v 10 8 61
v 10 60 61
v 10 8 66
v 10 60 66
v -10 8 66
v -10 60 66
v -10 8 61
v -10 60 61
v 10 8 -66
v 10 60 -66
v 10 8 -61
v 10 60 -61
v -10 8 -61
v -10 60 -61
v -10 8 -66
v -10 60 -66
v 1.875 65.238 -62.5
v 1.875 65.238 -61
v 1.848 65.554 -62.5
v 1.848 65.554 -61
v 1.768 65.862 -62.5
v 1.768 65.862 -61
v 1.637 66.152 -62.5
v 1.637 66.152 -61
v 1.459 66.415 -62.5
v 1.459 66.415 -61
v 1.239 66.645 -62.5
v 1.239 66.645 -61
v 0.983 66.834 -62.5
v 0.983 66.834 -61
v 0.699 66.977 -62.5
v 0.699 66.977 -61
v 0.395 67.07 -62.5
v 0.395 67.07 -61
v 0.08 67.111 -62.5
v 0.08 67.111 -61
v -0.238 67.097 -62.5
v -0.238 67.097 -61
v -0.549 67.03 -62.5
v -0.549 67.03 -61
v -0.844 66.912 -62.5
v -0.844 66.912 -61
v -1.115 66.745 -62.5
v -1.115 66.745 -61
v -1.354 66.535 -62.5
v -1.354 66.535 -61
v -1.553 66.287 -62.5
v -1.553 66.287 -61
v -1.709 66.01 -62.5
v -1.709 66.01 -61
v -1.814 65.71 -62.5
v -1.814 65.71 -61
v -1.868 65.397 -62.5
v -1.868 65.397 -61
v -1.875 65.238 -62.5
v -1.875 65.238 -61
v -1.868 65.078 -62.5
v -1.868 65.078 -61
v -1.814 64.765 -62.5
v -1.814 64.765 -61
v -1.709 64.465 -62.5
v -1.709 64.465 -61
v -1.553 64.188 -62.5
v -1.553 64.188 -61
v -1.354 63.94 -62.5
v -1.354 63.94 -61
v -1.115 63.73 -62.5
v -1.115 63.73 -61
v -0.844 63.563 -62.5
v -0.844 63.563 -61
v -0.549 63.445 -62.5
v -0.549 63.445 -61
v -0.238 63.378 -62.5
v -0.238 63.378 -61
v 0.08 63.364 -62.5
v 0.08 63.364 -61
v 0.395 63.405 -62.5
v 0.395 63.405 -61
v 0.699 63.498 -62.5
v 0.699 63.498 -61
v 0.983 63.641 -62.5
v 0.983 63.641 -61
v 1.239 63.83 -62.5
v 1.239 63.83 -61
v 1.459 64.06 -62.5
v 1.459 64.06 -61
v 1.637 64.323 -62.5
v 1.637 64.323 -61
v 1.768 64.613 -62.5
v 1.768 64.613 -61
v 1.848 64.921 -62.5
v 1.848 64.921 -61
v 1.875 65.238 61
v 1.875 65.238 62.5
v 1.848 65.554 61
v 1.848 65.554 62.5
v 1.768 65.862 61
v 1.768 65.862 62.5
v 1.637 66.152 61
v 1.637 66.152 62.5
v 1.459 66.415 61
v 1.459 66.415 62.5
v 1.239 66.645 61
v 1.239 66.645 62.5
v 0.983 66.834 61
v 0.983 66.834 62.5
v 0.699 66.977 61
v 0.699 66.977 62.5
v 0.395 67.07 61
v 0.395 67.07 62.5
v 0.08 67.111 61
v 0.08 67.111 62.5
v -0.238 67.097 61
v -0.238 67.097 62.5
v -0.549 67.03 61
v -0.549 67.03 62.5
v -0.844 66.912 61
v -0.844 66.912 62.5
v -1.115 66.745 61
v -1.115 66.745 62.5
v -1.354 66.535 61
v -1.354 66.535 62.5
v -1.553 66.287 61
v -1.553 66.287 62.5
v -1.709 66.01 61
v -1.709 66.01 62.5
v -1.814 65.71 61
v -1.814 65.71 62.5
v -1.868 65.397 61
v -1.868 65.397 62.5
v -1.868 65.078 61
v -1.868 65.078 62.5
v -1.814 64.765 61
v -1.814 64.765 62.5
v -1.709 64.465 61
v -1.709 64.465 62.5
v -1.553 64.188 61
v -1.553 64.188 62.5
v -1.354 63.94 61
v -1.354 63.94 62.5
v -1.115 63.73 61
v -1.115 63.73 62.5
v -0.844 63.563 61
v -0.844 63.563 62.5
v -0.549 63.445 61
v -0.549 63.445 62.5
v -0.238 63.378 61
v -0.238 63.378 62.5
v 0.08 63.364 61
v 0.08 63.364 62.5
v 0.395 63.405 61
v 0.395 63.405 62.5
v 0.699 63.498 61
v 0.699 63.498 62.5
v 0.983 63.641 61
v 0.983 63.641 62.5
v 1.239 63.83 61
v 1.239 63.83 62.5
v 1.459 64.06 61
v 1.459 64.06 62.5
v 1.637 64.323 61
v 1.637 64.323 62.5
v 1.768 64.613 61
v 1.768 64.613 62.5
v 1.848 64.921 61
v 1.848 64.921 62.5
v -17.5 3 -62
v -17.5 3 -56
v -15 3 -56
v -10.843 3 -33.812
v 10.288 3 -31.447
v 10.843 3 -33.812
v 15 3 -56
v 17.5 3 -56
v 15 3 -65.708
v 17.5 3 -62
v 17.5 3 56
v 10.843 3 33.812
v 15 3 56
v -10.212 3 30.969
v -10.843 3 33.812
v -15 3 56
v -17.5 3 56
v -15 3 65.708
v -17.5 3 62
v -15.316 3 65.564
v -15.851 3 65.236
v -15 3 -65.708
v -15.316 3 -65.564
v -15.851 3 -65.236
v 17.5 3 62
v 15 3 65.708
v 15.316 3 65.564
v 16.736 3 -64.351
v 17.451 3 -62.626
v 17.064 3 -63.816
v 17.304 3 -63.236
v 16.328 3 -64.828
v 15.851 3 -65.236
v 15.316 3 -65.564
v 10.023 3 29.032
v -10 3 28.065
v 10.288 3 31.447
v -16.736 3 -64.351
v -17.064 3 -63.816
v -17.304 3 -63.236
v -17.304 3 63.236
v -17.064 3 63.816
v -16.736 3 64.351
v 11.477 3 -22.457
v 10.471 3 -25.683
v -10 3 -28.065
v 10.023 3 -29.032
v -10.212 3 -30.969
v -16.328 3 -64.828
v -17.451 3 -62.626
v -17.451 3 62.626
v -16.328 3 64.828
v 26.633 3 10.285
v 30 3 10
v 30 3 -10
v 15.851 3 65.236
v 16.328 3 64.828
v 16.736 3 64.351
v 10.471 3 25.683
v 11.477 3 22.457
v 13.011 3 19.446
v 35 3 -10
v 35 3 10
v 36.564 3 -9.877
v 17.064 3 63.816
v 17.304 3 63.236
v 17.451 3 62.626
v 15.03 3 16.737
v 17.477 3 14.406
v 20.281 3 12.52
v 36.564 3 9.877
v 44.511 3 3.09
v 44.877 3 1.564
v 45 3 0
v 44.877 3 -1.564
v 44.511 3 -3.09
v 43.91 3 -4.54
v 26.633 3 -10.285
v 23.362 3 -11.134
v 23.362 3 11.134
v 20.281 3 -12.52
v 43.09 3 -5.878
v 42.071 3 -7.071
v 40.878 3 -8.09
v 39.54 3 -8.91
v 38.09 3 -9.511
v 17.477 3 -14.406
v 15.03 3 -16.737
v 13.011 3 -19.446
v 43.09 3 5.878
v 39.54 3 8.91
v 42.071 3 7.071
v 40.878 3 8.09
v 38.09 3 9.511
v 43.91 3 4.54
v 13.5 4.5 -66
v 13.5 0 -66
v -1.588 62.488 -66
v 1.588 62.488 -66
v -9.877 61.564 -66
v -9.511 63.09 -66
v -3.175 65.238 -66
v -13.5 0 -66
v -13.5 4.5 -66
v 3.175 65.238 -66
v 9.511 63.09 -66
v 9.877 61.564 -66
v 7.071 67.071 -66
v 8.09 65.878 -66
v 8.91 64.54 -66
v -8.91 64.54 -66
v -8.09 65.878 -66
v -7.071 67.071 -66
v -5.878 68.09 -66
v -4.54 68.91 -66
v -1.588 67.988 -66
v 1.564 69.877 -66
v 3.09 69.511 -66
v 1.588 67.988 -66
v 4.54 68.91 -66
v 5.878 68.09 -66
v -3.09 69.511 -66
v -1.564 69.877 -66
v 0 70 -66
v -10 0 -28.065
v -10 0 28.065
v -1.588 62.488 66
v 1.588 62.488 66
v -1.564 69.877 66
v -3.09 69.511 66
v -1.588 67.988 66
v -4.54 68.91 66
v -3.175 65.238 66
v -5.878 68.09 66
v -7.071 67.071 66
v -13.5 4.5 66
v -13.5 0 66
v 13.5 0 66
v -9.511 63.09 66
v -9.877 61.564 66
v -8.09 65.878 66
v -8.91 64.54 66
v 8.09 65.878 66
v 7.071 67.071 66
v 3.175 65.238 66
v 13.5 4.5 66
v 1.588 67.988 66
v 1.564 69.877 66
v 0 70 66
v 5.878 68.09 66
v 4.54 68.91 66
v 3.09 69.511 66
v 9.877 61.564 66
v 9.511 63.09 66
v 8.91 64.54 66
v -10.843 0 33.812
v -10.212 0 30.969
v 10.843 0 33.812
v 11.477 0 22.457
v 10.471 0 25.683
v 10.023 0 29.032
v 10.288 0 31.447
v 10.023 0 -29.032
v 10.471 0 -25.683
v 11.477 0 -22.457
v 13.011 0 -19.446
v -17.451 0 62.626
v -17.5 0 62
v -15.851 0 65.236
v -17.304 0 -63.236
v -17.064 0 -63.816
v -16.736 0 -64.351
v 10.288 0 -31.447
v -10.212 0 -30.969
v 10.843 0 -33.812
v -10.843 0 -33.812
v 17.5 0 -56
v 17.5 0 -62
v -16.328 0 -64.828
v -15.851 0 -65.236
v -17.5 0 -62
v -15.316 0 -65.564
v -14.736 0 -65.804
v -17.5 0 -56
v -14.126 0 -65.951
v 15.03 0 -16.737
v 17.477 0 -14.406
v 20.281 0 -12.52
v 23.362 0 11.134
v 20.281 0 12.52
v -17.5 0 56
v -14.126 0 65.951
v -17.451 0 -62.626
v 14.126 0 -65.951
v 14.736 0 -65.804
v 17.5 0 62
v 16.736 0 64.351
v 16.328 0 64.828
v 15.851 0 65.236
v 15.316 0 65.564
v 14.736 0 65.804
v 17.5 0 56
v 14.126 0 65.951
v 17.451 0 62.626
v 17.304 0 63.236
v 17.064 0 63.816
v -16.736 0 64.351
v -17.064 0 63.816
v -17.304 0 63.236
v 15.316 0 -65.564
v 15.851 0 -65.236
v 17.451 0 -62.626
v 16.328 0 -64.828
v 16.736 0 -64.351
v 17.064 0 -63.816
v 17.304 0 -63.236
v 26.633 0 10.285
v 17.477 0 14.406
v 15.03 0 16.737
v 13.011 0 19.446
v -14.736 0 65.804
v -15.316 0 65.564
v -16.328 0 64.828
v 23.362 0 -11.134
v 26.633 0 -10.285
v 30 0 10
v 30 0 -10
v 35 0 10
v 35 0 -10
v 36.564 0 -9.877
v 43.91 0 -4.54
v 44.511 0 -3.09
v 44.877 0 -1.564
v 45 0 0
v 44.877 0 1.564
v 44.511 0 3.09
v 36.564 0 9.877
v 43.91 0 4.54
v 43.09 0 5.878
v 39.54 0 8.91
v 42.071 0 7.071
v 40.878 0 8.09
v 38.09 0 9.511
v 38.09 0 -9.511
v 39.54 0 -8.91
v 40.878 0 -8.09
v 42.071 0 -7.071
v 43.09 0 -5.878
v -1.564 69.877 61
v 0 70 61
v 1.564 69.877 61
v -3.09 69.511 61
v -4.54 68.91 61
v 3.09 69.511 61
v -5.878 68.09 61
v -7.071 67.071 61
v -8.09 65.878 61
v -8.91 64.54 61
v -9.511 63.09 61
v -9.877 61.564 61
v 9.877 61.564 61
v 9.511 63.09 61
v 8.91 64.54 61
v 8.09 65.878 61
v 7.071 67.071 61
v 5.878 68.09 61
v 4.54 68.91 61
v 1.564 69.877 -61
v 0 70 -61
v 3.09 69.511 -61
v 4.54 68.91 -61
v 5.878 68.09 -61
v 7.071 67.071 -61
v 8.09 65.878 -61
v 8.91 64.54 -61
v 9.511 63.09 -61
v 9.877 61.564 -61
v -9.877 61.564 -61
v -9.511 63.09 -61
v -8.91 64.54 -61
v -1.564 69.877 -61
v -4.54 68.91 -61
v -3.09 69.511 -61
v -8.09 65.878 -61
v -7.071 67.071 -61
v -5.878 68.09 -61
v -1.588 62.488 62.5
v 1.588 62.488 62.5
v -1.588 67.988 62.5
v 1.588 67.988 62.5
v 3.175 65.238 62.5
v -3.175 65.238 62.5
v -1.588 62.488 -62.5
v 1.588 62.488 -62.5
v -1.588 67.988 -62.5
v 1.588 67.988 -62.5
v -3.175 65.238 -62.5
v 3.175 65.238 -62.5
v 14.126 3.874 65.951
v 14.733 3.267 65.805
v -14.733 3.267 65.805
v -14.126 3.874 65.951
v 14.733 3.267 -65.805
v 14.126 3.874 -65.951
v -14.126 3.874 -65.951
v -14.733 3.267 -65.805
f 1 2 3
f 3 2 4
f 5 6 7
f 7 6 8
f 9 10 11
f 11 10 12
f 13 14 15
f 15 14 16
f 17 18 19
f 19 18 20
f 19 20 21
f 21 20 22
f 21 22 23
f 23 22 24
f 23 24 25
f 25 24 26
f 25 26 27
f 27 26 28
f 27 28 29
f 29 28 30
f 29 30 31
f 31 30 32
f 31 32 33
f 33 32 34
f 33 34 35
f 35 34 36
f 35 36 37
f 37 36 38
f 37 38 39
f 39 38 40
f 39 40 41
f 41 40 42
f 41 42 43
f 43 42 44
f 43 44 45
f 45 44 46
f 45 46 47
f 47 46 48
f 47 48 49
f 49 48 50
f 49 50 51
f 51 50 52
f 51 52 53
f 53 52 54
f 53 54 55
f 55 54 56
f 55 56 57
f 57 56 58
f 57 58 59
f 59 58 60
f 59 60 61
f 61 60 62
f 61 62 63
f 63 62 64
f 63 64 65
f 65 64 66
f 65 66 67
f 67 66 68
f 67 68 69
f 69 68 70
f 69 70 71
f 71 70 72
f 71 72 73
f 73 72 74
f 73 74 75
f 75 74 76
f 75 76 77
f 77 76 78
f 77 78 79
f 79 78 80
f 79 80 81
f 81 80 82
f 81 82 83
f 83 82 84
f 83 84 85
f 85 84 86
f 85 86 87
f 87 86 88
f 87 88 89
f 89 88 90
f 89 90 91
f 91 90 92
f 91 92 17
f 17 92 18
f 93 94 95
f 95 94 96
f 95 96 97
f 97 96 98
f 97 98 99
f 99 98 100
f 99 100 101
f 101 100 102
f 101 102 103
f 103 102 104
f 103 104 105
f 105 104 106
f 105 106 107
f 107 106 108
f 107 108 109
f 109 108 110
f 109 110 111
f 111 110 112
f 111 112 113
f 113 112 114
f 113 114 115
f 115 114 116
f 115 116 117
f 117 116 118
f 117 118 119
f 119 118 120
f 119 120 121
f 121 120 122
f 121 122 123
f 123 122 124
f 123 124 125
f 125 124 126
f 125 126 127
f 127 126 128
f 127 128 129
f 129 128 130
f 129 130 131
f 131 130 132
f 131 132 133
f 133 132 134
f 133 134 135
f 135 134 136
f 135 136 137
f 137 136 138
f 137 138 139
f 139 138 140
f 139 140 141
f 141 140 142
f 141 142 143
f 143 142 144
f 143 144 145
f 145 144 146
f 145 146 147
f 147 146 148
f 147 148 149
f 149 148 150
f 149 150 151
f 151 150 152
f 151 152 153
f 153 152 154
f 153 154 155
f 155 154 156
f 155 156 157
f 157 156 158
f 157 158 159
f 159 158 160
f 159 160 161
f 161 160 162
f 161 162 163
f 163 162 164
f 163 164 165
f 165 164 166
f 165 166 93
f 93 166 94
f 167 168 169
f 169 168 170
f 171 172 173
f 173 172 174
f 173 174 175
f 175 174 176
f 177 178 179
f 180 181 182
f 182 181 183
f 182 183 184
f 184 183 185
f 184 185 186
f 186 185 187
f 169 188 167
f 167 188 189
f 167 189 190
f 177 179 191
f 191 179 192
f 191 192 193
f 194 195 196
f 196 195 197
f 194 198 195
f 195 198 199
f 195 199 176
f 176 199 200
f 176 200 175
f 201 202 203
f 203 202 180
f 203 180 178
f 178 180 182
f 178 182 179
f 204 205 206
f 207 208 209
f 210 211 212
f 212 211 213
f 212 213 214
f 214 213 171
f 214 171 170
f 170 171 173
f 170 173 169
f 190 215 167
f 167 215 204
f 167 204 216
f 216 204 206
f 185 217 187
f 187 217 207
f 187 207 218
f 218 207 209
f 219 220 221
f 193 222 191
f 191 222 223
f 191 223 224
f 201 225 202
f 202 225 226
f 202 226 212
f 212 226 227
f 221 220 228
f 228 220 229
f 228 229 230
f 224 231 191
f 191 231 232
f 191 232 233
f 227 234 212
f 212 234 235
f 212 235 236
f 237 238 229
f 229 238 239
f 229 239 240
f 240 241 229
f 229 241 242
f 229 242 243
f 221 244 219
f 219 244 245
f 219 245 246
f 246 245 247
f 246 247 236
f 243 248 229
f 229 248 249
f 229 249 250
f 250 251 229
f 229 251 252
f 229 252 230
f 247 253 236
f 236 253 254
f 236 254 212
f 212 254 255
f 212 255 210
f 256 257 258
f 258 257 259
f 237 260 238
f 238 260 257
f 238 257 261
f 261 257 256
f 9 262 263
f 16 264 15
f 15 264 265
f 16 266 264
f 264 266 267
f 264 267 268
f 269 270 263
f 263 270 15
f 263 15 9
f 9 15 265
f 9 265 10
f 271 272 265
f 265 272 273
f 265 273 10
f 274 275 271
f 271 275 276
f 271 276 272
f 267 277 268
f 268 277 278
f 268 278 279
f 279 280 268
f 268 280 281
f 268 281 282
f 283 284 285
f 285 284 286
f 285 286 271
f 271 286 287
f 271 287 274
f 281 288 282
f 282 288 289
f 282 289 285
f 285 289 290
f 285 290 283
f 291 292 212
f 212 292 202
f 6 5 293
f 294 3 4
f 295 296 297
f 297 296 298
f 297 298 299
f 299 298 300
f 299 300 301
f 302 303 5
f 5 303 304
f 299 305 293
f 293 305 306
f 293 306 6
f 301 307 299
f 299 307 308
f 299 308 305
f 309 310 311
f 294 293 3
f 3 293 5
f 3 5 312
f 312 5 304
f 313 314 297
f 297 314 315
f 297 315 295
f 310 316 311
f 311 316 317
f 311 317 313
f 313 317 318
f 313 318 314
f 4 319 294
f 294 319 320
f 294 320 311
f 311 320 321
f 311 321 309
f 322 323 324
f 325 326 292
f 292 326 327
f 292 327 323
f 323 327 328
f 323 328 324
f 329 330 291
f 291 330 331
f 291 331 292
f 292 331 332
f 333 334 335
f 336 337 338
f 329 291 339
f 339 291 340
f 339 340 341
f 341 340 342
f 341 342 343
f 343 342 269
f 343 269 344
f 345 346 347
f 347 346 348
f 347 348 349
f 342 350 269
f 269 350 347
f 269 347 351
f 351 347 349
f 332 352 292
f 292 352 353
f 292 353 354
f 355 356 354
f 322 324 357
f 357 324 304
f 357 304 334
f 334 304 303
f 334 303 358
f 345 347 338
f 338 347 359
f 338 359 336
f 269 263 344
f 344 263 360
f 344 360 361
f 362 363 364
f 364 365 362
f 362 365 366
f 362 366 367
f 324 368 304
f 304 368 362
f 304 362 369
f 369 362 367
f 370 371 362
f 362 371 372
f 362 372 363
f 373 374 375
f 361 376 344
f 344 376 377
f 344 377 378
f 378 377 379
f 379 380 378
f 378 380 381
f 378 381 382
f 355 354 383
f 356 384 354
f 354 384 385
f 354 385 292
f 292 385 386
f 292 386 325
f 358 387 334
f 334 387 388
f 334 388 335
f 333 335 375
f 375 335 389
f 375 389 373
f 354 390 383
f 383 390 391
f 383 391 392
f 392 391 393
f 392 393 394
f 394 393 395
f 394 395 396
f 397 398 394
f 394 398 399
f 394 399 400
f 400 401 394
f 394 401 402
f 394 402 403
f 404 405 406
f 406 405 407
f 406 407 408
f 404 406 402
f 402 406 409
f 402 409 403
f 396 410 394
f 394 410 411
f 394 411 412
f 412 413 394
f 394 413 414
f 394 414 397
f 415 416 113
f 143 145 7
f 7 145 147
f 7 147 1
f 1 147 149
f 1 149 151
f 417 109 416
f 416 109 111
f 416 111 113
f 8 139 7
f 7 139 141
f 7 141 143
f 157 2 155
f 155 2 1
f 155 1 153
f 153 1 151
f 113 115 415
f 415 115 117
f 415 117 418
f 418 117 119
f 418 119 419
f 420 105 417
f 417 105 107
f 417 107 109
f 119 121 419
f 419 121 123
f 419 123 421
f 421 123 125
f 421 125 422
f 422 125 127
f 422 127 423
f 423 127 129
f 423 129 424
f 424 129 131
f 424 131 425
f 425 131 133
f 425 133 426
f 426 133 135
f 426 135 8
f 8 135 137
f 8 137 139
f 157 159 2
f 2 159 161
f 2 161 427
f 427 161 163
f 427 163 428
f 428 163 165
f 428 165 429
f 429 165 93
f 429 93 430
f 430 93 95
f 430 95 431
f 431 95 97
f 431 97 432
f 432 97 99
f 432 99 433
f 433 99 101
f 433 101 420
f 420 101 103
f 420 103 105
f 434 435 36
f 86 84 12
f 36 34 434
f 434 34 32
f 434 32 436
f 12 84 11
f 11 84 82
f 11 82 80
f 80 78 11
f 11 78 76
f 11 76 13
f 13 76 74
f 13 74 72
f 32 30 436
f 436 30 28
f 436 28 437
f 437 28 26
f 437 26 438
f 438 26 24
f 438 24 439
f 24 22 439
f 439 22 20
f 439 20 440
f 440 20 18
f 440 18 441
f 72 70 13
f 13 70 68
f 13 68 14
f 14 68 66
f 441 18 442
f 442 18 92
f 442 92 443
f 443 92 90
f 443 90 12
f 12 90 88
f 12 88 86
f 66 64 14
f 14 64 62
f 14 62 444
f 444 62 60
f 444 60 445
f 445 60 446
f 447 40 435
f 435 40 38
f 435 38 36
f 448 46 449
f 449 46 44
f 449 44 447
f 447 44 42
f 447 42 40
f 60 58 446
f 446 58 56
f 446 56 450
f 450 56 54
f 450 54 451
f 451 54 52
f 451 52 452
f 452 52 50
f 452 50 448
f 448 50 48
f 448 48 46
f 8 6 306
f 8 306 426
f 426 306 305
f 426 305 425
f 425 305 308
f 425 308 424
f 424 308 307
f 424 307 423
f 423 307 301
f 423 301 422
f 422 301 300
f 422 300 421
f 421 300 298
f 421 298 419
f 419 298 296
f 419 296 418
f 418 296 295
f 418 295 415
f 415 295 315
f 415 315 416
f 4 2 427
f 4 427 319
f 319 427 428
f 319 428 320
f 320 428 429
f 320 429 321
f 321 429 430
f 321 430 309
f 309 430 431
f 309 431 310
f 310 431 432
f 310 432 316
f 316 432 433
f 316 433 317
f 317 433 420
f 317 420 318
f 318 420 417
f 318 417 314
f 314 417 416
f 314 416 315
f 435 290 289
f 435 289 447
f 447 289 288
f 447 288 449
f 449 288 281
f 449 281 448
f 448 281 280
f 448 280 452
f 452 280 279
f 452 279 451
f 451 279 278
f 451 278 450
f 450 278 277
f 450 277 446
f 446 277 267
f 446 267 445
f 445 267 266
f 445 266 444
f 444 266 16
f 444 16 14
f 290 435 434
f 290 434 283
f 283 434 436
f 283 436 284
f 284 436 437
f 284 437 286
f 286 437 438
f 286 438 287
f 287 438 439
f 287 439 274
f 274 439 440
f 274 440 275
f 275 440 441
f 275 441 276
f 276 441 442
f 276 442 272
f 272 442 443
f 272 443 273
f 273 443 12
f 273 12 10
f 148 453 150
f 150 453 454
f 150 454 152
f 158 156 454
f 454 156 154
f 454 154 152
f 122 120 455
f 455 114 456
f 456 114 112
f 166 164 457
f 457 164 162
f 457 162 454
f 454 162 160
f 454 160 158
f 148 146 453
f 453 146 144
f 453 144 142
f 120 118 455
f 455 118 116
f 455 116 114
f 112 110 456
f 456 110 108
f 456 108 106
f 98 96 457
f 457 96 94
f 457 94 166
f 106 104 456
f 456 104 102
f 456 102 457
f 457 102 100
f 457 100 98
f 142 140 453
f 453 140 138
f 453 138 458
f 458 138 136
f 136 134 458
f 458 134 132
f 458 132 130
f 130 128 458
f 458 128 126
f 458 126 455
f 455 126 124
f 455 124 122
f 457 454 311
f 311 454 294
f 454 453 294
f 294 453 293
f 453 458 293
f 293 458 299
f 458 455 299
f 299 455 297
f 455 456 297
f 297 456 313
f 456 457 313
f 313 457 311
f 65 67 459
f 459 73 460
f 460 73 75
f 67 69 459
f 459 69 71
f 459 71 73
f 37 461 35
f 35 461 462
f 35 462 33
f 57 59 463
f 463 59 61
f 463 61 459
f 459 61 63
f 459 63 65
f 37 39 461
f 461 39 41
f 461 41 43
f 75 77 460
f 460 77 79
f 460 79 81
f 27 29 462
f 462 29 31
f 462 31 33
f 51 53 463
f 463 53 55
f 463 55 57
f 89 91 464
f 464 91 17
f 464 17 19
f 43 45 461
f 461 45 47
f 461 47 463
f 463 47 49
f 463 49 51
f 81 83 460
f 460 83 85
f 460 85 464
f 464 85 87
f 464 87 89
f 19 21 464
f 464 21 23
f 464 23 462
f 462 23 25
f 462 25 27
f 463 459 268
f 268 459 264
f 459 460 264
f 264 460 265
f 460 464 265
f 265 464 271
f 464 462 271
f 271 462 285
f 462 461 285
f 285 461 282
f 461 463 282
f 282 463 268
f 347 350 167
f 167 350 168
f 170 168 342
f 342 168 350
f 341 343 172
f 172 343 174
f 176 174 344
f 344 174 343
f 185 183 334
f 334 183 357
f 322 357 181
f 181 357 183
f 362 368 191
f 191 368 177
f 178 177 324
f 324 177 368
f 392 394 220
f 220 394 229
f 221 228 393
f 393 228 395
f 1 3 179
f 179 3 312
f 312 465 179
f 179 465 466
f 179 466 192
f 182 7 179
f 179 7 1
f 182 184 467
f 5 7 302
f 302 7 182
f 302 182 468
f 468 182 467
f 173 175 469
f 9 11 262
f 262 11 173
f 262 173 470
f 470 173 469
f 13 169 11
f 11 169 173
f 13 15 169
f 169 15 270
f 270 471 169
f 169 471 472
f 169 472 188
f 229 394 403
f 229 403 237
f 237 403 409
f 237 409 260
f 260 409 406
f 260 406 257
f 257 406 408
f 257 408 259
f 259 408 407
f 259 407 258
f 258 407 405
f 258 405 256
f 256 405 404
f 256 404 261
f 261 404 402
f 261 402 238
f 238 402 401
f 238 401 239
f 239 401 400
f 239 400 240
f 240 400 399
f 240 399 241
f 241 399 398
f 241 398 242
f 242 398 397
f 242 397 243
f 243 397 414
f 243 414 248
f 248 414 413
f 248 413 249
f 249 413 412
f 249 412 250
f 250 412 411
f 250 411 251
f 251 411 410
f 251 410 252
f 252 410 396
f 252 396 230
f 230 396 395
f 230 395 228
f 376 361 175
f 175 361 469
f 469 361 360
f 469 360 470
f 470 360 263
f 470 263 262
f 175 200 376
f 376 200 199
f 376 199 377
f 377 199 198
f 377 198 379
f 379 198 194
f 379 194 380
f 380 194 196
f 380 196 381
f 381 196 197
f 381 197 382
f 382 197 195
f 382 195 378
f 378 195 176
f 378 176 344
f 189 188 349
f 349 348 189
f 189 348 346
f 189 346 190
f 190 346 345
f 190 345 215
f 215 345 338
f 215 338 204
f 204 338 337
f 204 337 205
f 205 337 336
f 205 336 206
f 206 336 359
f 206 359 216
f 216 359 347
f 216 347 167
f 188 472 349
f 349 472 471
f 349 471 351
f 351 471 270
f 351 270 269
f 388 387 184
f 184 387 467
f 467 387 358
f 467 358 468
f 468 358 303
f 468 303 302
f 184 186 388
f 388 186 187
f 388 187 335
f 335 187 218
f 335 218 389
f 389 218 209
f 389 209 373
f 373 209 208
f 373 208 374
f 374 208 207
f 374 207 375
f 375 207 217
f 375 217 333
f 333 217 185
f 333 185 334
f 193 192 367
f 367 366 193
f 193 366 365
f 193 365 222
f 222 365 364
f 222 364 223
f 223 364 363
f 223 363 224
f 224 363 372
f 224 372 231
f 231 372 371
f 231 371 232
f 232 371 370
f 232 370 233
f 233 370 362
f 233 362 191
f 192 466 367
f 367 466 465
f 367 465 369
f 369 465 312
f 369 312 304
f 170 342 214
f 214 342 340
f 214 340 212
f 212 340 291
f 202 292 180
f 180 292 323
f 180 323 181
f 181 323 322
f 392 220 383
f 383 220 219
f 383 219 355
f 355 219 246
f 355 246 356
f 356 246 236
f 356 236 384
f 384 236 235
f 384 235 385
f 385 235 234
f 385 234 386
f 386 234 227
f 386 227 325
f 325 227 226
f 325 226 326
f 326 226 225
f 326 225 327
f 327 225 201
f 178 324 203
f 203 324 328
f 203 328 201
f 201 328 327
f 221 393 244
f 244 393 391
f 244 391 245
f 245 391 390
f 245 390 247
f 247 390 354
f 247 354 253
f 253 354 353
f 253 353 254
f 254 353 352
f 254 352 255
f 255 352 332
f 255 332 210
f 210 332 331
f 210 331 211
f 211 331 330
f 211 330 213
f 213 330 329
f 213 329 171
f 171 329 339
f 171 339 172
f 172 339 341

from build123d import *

# Parameters (mm, degrees)
SKETCH1_W           = 20
SKETCH1_H           = 132
BOSS_EXTRUDE1_DEPTH = 3
SKETCH2_W           = 20
SKETCH2_H           = 5
BOSS_EXTRUDE2_DEPTH = 67
SKETCH4_R           = 1.875
CUT_EXTRUDE1_DEPTH  = 150.746452379
FILLET3_R           = 10
CUT_EXTRUDE2_DEPTH  = 3.5
CUT_EXTRUDE3_DEPTH  = 3.5
SKETCH8_W           = 45
SKETCH8_H           = 20
BOSS_EXTRUDE3_DEPTH = 3
CHAMFER1_SIZE       = 5
FILLET4_R           = 10
FILLET5_R           = 4
FILLET6_R           = 20


# Some blends are built 0.0001 mm under size
with BuildPart() as part:
    # Sketch1 → Boss-Extrude1 (new body)
    with BuildSketch(Plane(origin=(0, 0, 0), x_dir=(1, 0, 0), z_dir=(0, 1, 0))):
        Rectangle(SKETCH1_W, SKETCH1_H)
    extrude(amount=BOSS_EXTRUDE1_DEPTH)

    # Sketch2 → Boss-Extrude2 (add)
    with BuildSketch(Plane(origin=(0, 3, 0), x_dir=(1, 0, 0), z_dir=(0, 1, 0))):
        with Locations((0, -63.5)):
            Rectangle(SKETCH2_W, SKETCH2_H)
        with Locations((0, 63.5)):
            Rectangle(SKETCH2_W, SKETCH2_H)
    extrude(amount=BOSS_EXTRUDE2_DEPTH)

    # Sketch4 → Cut-Extrude1 (cut, through all)
    with BuildSketch(Plane.XY.offset(66)):
        with Locations((0, 65.2375)):
            Circle(SKETCH4_R)
    extrude(amount=-CUT_EXTRUDE1_DEPTH, mode=Mode.SUBTRACT)

    # Fillet3
    fillet3_edges = [part.edges().sort_by_distance(p)[0] for p in [
        (10, 70, 63.5),
        (-10, 70, 63.5),
        (10, 70, -63.5),
        (-10, 70, -63.5),
    ]]
    fillet(fillet3_edges, radius=FILLET3_R - 0.0001)  # a hair under: the kernel refuses the full size

    # Sketch6 → Cut-Extrude2 (cut)
    with BuildSketch(Plane.XY.offset(66)):
        Polygon((3.175426481, 65.2375), (1.58771324, 67.9875), (-1.58771324, 67.9875), (-3.175426481, 65.2375), (-1.58771324, 62.4875), (1.58771324, 62.4875), align=None)
    extrude(amount=-CUT_EXTRUDE2_DEPTH, mode=Mode.SUBTRACT)

    # Sketch7 → Cut-Extrude3 (cut)
    with BuildSketch(Plane(origin=(0, 0, -66), x_dir=(-1, 0, 0), z_dir=(0, 0, -1))):
        Polygon((3.175426481, 65.2375), (1.58771324, 67.9875), (-1.58771324, 67.9875), (-3.175426481, 65.2375), (-1.58771324, 62.4875), (1.58771324, 62.4875), align=None)
    extrude(amount=-CUT_EXTRUDE3_DEPTH, mode=Mode.SUBTRACT)

    # Sketch8 → Boss-Extrude3 (add)
    with BuildSketch(Plane.XZ):
        Polygon((17.5, -56), (17.5, -66), (-17.5, -66), (-17.5, -56), (-10, -31), (10, -31), align=None)
        Polygon((17.5, 56), (17.5, 66), (-17.5, 66), (-17.5, 56), (-10, 31), (10, 31), align=None)
        with Locations((22.5, 0)):
            Rectangle(SKETCH8_W, SKETCH8_H)
    extrude(amount=-BOSS_EXTRUDE3_DEPTH)

    # Chamfer1
    chamfer1_edges = [part.edges().sort_by_distance(p)[0] for p in [
        (10, 3, -63.5),
        (-10, 3, -63.5),
        (10, 3, 63.5),
        (-10, 3, 63.5),
        (0, 3, 61),
        (0, 3, -61),
    ]]
    chamfer(chamfer1_edges, length=CHAMFER1_SIZE)

    # Fillet4
    fillet4_edges = [part.edges().sort_by_distance(p)[0] for p in [
        (45, 1.5, -10),
        (45, 1.5, 10),
    ]]
    fillet(fillet4_edges, radius=FILLET4_R - 0.0001)  # a hair under: the kernel refuses the full size

    # Fillet5
    fillet5_edges = [part.edges().sort_by_distance(p)[0] for p in [
        (17.5, 1.5, -66),
        (-17.5, 1.5, -66),
        (-17.5, 1.5, 66),
        (17.5, 1.5, 66),
    ]]
    fillet(fillet5_edges, radius=FILLET5_R)

    # Fillet6
    # the kernel refuses this fillet: 20 mm, written as the material it adds along each edge
    with BuildSketch(Plane(origin=(-10, 0, -31), x_dir=(-0.287347885566345, 0, -0.9578262852211515), z_dir=(0, 1, 0)), Plane(origin=(-10, 0, 31), x_dir=(0, 0, -1), z_dir=(0, 1, 0))) as fillet6_piece_1:
        with BuildLine():
            CenterArc((FILLET6_R * 0.146768836304, FILLET6_R), FILLET6_R, 253.300755766, 16.699244234)
            Line((-FILLET6_R * 0.140579049263, FILLET6_R * 0.0421737147788), (0, 0))
            Line((0, 0), (FILLET6_R * 0.146768836304, 0))
        make_face()
    extrude(amount=3)
    with BuildSketch(Plane(origin=(10, 0, 31), x_dir=(0, 0, -1), z_dir=(0, 1, 0)), Plane(origin=(10, 0, -31), x_dir=(0.287347885566345, 0, -0.9578262852211515), z_dir=(0, 1, 0))) as fillet6_piece_2:
        with BuildLine():
            CenterArc((FILLET6_R * 0.146768836304, -FILLET6_R), FILLET6_R, 90, 16.699244234)
            Line((-FILLET6_R * 0.140579049263, -FILLET6_R * 0.0421737147788), (0, 0))
            Line((0, 0), (FILLET6_R * 0.146768836304, 0))
        make_face()
    extrude(amount=3)
    with BuildSketch(Plane(origin=(10, 3, -10), x_dir=(0, 0, -1), z_dir=(0, -1, 0))) as fillet6_piece_3:
        with BuildLine():
            CenterArc((FILLET6_R, FILLET6_R), FILLET6_R, 180, 90)
            Line((0, FILLET6_R), (0, 0))
            Line((0, 0), (FILLET6_R, 0))
        make_face()
    extrude(amount=3)
    with BuildSketch(Plane(origin=(10, 0, 10), x_dir=(1, 0, 0), z_dir=(0, 1, 0))) as fillet6_piece_4:
        with BuildLine():
            CenterArc((FILLET6_R, -FILLET6_R), FILLET6_R, 90, 90)
            Line((0, -FILLET6_R), (0, 0))
            Line((0, 0), (FILLET6_R, 0))
        make_face()
    extrude(amount=3)


solid = part.part
